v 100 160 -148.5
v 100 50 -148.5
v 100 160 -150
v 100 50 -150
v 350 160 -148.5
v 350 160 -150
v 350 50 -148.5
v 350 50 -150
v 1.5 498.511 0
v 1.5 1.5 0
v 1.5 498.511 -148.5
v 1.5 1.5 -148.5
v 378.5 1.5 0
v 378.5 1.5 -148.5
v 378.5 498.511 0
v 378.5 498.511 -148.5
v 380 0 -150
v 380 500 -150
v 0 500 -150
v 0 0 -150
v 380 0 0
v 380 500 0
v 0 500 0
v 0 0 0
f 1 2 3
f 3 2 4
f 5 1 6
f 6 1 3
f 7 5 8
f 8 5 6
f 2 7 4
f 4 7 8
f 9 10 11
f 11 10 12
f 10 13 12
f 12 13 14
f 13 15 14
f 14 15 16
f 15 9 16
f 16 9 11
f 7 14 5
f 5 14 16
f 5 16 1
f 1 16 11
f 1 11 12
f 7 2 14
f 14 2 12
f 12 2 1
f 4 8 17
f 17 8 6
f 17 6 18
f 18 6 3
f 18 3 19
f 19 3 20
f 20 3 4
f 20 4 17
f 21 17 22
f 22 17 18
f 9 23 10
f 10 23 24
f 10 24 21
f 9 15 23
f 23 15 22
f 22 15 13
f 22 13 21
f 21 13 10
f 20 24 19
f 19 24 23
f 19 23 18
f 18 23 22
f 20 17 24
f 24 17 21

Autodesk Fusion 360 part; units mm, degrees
sketch "スケッチ1" plane through (0, 0, 0) normal (0, 1, 0) x (1, 0, 0)
  line L0 (0, 0) -> (380, 0)
  line L1 (380, 0) -> (380, 150)
  line L2 (380, 150) -> (0, 150)
  line L3 (0, 150) -> (0, 0)
  dimension "d1" = 380
  dimension "d2" = 150
extrude "押し出し1" add sketch "スケッチ1" along normal blind 500
sketch "スケッチ2" plane through (0, 0, 0) normal (0, 0, 1) x (1, 0, 0)
  line L0 (0, 0) -> (380, 0)
  line L1 (380, 0) -> (380, 500)
  line L2 (380, 500) -> (0, 500)
  line L3 (0, 500) -> (0, 0)
sketch "スケッチ3" plane through (0, 0, 0) normal (0, 0, 1) x (1, 0, 0)
  line L0 (380, 500) -> (0, 500)
  line L1 (380.7982, 500) -> (380.7982, 498.5)
  line L2 (0, 500) -> (0, 0)
  line L3 (0, 471) -> (1.5, 471)
  line L4 (1.5, 471) -> (1.5, 502)
  line L5 (380, 0) -> (380, 500)
  line L6 (380, 50) -> (378.5, 50)
  line L7 (378.5, 50) -> (377, 50)
  line L8 (0, 0) -> (380, 0)
  line L9 (361, 0) -> (361, 1.5)
  line L10 (378.5, 1.5) -> (1.5, 1.5)
  line L11 (1.5, 1.5) -> (1.5, 498.5115)
  line L12 (1.5, 498.5115) -> (378.5, 498.5115)
  line L13 (378.5, 498.5115) -> (378.5, 1.5)
  dimension "d5" = 1.5
  dimension "d6" = 1.5
  dimension "d7" = 1.5
  dimension "d10" = 1.5
extrude "押し出し2" cut sketch "スケッチ3" against normal blind 148.5 contours L4 L10 L11 L12 L13
sketch "スケッチ4" plane through (0, 0, -150) normal (0, 0, -1) x (-1, 0, 0)
  line L0 (-380, 0) -> (0, 0)
  line L1 (0, 0) -> (0, 500)
  line L2 (0, 500) -> (-380, 500)
  line L3 (-380, 500) -> (-380, 0)
  line L4 (0, 0) -> (-100, 0)
  line L5 (-100, 0) -> (-100, 50)
  line L6 (-100, 50) -> (-350, 50)
  line L7 (-350, 50) -> (-350, 160)
  line L8 (-350, 160) -> (-100, 160)
  line L9 (-100, 160) -> (-100, 50)
  dimension "d13" = 100
  dimension "d14" = 50
  dimension "d15" = 250
  dimension "d16" = 110
extrude "押し出し3" cut sketch "スケッチ4" against normal blind 30 contours L6 L7 L8 L9
sketch "スケッチ5" plane through (0, 0, 0) normal (0, 0, 1) x (1, 0, 0)
  curve L0
  curve L1
  curve L2
  curve L3
  curve A0
  dimension "d19" = 65
  dimension "d24" = 82
sketch "スケッチ6" plane through (0, 0, 0) normal (0, 0, 1) x (1, 0, 0)
sketch "スケッチ7" plane through (0, 0, 0) normal (0, 1, 0) x (1, 0, 0)
sketch "スケッチ8" plane through (0, 0, 0) normal (0, 0, 1) x (1, 0, 0)
  curve L0
  curve L1
  line L2 (378.5, 1.5) -> (1.5, 1.5)
  curve L3
  curve L4
  curve L5
  curve L6
  curve L7
  curve A0
  point P0 (83.5, 1.5)
  dimension "d26" = 20
  dimension "d27" = 20
  dimension "d28" = 30
  dimension "d29" = 30
  dimension "d30" = 50
sketch "スケッチ9" plane through (0, 0, 0) normal (0, 0, 1) x (1, 0, 0)
  curve L0
  curve L1
  curve L2
  curve L3
  point P0 (21.5, 1.5)
  point P1 (51.5, 1.5)
sketch "スケッチ10" plane through (0, 0, 0) normal (0, 0, 1) x (1, 0, 0)
  curve L0
  curve L1
  curve L2
  curve L3
  dimension "d31" = 100
  dimension "d32" = 80
